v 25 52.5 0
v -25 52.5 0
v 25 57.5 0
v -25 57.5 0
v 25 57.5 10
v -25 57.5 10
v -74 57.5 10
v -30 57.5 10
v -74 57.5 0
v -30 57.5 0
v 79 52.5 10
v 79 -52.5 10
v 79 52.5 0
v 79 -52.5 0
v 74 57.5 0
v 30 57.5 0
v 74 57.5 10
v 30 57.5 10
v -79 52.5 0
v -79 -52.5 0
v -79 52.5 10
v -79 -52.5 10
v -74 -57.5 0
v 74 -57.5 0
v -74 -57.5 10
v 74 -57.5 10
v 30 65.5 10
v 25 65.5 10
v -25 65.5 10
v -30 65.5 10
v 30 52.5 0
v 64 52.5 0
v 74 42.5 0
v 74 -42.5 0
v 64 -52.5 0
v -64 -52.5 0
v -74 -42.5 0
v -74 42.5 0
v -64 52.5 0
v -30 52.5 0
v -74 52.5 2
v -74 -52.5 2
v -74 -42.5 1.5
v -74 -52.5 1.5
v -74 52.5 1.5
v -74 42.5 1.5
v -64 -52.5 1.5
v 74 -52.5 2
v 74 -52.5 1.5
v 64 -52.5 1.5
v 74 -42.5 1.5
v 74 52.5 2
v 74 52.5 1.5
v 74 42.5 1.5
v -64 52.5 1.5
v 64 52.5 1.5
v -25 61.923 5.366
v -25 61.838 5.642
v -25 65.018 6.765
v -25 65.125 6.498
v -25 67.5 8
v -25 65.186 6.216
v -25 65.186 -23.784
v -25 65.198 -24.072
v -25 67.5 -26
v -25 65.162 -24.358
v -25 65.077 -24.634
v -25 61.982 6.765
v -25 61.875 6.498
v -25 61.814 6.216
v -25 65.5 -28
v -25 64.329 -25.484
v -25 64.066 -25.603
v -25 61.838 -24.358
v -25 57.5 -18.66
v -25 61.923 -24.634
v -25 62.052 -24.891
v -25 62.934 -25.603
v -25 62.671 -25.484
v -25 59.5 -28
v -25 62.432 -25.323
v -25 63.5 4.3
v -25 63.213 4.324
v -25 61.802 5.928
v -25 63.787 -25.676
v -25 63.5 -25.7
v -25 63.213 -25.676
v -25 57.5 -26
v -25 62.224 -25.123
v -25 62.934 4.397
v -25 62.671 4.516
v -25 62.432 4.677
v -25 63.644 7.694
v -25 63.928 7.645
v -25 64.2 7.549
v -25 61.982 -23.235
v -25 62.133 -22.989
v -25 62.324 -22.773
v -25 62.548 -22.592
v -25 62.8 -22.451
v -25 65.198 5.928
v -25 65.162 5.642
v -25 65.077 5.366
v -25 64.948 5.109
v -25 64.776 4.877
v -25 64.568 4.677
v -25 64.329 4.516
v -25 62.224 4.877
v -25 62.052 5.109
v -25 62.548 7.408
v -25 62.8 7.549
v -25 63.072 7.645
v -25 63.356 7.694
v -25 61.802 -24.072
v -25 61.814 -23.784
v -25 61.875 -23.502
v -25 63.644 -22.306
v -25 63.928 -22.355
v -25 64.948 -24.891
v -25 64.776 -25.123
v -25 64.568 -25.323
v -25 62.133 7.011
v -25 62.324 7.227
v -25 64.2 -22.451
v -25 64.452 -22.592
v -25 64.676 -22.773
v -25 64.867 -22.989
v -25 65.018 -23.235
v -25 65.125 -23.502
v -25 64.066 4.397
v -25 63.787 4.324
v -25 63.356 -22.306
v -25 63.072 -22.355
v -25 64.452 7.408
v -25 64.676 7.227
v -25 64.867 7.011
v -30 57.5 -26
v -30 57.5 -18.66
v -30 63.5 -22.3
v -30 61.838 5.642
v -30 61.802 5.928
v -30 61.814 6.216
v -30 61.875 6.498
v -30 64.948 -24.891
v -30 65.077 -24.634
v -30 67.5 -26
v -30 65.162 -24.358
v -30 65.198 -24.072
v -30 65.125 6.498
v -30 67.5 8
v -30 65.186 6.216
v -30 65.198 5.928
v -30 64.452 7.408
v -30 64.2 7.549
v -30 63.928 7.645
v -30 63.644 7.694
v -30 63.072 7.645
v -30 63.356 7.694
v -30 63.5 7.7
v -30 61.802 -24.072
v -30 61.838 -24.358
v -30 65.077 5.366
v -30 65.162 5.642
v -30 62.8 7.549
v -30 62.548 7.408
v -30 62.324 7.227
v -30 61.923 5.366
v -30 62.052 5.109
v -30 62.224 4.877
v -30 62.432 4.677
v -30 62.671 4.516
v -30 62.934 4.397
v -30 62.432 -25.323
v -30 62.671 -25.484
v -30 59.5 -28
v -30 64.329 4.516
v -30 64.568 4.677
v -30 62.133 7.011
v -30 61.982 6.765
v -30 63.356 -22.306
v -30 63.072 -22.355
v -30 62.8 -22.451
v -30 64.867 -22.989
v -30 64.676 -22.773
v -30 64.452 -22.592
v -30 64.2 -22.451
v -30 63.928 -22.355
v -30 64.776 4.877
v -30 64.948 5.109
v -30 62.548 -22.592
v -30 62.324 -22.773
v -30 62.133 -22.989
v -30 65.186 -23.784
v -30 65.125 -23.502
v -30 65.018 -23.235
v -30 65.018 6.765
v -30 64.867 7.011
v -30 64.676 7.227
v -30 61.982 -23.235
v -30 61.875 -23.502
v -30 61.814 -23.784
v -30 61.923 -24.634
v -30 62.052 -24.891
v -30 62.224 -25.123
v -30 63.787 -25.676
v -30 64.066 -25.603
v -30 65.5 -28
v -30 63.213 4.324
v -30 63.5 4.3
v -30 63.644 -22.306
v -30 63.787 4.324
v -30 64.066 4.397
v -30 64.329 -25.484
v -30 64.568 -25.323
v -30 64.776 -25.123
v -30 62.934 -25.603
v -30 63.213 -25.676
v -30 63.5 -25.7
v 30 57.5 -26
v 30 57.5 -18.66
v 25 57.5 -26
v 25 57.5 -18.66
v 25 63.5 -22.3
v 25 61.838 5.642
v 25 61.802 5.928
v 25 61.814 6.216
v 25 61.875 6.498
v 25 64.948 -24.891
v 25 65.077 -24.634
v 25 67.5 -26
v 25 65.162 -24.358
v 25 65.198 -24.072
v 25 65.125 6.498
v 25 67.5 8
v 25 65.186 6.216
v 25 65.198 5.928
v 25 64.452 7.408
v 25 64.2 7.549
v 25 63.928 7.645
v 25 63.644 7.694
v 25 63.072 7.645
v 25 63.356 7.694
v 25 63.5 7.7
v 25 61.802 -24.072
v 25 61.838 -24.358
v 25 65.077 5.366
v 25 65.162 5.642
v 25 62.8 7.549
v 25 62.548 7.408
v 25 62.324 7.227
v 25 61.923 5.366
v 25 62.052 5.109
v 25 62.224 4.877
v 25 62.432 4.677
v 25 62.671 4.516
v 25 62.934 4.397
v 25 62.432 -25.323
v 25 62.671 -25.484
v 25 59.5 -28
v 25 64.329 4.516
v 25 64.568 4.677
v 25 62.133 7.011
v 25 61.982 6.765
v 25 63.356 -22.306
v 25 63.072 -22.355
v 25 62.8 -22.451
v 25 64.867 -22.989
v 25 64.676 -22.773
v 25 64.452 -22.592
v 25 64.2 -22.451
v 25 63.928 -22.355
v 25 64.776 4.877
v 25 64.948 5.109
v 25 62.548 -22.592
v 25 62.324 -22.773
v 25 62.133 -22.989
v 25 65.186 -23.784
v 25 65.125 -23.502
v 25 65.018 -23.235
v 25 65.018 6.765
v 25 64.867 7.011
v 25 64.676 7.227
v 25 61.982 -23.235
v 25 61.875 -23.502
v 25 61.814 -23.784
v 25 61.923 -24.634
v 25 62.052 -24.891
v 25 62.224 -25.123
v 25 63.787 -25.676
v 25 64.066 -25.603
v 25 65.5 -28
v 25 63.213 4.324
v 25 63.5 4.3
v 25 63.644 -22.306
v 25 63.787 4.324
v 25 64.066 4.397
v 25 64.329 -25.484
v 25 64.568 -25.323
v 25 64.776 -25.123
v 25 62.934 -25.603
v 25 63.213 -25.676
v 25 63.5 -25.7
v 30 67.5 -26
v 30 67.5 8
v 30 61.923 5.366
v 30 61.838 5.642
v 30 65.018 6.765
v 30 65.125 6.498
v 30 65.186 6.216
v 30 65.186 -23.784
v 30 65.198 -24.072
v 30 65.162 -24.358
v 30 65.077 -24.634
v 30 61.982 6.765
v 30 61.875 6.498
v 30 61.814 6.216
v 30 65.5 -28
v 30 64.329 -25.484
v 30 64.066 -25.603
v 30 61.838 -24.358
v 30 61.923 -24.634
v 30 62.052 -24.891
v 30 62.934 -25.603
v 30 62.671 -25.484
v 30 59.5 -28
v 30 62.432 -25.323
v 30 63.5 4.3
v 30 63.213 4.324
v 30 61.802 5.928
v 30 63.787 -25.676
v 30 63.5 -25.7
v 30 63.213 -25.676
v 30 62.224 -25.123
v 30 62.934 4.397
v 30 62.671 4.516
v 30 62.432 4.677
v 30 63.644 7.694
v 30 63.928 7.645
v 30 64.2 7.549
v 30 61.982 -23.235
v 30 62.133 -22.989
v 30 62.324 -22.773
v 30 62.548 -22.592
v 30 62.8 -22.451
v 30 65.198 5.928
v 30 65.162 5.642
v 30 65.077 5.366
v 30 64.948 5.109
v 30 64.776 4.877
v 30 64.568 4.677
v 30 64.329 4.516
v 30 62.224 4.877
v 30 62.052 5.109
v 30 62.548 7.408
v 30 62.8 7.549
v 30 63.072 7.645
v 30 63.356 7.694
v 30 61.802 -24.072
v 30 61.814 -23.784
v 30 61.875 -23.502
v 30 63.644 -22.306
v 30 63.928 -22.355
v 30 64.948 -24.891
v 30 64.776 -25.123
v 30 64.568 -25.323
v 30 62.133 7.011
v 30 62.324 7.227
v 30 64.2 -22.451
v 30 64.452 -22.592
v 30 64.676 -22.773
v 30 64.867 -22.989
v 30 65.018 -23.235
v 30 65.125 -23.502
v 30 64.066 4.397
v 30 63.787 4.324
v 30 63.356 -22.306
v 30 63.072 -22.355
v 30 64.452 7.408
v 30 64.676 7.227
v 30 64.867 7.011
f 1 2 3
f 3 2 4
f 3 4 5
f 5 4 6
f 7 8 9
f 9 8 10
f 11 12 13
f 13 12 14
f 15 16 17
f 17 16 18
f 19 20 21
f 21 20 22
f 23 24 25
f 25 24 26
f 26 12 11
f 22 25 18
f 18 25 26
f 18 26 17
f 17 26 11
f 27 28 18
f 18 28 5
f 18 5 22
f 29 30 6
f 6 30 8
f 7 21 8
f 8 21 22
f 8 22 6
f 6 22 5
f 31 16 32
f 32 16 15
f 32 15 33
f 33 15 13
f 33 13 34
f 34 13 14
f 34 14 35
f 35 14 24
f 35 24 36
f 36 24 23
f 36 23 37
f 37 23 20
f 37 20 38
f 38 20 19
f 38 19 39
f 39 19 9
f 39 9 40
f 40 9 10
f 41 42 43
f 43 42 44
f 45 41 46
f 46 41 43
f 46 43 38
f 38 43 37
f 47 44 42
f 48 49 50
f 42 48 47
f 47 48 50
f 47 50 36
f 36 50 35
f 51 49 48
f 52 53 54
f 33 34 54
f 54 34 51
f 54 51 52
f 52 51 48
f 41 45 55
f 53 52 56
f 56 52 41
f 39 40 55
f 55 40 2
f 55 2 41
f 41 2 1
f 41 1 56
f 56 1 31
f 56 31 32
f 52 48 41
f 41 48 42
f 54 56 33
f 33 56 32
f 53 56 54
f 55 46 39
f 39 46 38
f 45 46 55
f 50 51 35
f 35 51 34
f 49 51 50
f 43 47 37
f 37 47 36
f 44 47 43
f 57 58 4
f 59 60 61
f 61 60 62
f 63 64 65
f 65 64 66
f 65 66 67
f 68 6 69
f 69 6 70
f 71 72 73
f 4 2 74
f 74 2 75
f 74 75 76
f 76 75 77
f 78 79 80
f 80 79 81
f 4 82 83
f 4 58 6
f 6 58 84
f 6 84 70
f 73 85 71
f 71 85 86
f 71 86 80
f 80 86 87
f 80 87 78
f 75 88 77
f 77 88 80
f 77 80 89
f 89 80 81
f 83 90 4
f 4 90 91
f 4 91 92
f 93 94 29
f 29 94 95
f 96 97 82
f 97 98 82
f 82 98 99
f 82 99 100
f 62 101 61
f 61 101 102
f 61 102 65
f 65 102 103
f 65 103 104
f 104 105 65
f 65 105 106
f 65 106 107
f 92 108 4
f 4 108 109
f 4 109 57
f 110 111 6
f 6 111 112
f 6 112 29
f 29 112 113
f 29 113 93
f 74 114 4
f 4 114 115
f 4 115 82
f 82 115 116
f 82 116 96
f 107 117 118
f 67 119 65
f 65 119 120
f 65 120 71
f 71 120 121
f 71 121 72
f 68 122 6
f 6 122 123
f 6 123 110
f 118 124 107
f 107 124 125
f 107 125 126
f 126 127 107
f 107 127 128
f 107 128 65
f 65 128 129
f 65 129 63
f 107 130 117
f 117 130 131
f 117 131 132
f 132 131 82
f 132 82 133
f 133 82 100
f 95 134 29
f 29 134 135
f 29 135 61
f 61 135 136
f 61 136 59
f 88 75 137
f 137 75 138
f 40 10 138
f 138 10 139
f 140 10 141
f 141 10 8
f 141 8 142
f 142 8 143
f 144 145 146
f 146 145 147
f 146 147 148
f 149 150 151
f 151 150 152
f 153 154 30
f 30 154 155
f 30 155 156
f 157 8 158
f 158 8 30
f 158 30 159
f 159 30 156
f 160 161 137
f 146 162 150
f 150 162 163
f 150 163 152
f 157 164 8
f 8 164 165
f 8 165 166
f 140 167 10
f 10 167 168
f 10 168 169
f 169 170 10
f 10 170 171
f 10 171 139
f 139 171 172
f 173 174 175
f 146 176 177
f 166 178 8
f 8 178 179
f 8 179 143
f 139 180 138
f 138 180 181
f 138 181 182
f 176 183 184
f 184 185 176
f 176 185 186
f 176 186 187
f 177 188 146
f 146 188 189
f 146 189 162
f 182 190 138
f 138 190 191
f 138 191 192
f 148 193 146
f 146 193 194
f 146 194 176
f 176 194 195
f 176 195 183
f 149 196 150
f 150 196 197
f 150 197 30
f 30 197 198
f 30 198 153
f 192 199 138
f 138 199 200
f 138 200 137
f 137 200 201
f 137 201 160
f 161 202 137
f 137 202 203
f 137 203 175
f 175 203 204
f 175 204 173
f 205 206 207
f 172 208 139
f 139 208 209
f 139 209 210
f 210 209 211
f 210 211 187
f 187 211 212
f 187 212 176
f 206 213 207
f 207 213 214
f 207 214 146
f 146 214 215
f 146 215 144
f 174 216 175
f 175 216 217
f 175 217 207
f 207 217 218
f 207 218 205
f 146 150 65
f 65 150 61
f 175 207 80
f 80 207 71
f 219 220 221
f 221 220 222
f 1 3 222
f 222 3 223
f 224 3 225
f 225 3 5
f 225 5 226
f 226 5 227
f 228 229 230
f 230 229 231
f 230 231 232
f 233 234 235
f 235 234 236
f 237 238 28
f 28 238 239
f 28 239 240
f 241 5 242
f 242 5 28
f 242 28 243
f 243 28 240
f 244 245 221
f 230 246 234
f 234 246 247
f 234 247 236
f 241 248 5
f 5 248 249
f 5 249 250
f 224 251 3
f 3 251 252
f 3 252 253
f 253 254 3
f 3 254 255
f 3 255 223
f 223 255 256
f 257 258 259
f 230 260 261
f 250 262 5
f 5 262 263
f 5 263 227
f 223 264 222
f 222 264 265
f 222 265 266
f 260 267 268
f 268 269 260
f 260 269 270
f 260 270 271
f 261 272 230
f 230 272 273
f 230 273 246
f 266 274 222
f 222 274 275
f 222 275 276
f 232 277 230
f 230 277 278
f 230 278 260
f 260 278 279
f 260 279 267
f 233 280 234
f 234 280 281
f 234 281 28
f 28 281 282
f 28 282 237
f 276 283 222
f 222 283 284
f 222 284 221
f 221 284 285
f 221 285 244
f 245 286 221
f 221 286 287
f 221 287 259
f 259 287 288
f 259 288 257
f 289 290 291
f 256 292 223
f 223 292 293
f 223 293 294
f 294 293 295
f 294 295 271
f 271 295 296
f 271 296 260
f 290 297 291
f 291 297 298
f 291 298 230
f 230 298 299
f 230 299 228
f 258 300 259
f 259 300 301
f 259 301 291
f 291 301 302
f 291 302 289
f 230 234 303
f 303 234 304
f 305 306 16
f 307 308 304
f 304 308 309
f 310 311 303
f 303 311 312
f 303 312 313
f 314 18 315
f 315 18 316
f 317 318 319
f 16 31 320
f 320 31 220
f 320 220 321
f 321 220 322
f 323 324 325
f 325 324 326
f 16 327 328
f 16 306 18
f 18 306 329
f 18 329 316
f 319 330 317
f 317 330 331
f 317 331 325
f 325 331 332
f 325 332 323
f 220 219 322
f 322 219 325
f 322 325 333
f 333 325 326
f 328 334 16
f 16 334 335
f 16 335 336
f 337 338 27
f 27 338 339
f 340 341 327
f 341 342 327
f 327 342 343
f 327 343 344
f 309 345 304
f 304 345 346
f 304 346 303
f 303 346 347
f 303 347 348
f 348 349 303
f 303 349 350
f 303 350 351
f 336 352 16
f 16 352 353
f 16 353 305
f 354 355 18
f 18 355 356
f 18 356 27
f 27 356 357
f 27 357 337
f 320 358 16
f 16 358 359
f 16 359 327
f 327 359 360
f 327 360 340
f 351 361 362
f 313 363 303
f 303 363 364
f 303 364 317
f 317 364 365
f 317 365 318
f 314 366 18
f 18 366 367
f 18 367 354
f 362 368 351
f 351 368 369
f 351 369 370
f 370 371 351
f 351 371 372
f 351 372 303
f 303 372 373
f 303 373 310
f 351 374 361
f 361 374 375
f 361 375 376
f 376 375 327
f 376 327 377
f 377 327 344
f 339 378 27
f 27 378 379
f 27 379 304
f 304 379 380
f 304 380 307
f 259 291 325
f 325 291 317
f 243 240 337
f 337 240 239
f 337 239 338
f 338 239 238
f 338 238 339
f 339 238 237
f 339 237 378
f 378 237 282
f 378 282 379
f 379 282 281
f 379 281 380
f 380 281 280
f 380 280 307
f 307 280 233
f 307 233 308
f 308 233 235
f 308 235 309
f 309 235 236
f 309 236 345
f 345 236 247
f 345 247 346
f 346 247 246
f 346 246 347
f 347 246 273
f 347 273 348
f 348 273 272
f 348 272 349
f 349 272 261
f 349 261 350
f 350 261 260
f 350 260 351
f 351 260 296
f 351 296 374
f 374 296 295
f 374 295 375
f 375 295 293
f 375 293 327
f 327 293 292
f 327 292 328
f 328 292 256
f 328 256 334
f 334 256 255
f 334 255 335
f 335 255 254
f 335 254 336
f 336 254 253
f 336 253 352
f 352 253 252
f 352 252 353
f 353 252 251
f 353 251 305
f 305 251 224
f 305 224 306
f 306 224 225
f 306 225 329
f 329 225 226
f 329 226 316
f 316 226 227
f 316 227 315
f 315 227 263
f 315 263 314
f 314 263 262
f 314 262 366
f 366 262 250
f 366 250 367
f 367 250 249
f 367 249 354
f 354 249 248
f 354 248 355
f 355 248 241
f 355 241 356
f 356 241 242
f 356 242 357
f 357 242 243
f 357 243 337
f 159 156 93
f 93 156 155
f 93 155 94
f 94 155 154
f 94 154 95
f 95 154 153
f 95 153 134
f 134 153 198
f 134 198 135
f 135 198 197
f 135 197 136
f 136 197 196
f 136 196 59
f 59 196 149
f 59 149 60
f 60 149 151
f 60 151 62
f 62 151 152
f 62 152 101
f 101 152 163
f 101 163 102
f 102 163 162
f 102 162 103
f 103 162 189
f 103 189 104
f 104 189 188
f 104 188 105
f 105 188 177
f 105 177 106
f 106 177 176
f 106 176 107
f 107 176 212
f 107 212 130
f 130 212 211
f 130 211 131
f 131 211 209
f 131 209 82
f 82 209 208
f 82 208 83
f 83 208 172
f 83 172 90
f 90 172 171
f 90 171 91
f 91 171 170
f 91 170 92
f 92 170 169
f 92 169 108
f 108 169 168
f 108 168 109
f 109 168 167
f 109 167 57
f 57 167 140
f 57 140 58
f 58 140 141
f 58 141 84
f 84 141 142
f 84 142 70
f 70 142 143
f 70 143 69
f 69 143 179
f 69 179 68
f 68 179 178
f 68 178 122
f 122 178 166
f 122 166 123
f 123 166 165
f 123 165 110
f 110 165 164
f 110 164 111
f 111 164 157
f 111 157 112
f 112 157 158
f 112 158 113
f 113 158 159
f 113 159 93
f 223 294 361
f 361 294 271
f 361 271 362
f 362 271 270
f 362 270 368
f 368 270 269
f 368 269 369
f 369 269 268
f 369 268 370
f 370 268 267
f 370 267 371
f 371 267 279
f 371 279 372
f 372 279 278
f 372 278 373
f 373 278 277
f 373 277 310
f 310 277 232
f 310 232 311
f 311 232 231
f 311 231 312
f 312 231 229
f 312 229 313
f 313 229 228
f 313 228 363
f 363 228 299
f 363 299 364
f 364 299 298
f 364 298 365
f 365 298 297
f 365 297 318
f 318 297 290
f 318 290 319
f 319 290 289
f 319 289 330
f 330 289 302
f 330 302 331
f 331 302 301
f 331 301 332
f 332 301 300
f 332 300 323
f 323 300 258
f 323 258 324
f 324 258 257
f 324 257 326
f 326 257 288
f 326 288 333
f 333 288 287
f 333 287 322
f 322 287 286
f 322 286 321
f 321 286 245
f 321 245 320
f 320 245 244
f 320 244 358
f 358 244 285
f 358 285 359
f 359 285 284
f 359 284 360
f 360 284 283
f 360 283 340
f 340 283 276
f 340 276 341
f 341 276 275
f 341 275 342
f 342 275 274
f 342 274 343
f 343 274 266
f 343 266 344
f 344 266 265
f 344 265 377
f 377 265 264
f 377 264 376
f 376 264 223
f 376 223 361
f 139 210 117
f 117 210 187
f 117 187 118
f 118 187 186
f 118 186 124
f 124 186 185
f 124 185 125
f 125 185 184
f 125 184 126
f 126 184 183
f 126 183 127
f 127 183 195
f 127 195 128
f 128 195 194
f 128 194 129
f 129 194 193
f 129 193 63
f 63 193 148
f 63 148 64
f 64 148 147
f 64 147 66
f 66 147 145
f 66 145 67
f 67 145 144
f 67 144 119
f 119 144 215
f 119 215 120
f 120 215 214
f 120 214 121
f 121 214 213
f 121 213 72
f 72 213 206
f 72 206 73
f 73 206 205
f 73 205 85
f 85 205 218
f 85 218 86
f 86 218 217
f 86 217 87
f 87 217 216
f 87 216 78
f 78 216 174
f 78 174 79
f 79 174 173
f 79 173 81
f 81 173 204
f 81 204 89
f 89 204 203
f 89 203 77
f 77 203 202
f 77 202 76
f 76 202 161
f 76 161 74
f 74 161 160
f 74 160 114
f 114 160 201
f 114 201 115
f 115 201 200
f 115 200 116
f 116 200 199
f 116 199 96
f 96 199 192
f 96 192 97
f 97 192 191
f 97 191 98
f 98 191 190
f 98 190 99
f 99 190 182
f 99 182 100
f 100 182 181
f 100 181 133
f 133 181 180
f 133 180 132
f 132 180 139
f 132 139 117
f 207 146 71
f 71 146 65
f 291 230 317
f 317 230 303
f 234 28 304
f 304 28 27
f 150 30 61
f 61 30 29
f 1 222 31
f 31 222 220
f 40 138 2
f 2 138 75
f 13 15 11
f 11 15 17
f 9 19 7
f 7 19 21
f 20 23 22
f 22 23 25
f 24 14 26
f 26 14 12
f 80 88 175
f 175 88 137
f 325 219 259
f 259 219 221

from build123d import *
from OCP.BRepFilletAPI import BRepFilletAPI_MakeChamfer

# Parameters (mm, degrees)
SKETCH1_W            = 158
SKETCH1_H            = 115
BOSS_EXTRUDE1_DEPTH  = 10
SKETCH2_W            = 148
SKETCH2_H            = 105
CUT_EXTRUDE1_DEPTH   = 2
BOSS_EXTRUDE2_DEPTH  = 1.5
SKETCH4_W            = 5
SKETCH4_H            = 10
BOSS_EXTRUDE3_DEPTH  = 38
M3_CLEARANCE_HOLE1_D = 3.4
CHAMFER3_SIZE        = 2
CHAMFER4_SIZE        = 5
CHAMFER4_SIZE_2      = 18.660254038
CHAMFER5_SIZE        = 5
CHAMFER6_SIZE        = 2


with BuildPart() as part:
    # Sketch1 → Boss-Extrude1 (new body)
    with BuildSketch(Plane.XY):
        Rectangle(SKETCH1_W, SKETCH1_H)
    extrude(amount=BOSS_EXTRUDE1_DEPTH)

    # Sketch2 → Cut-Extrude1 (cut)
    with BuildSketch(Plane(origin=(0, 0, 0), x_dir=(-1, 0, 0), z_dir=(0, 0, -1))):
        Rectangle(SKETCH2_W, SKETCH2_H)
    extrude(amount=-CUT_EXTRUDE1_DEPTH, mode=Mode.SUBTRACT)

    # Sketch3 → Boss-Extrude2 (add)
    with BuildSketch(Plane(origin=(0, 0, 0), x_dir=(-1, 0, 0), z_dir=(0, 0, -1))):
        Polygon((-74, 42.5), (-64, 52.5), (-74, 52.5), align=None)
        Polygon((74, 52.5), (74, 42.5), (64, 52.5), align=None)
        Polygon((-74, -52.5), (-74, -42.5), (-64, -52.5), align=None)
        Polygon((74, -42.5), (64, -52.5), (74, -52.5), align=None)
    extrude(amount=-BOSS_EXTRUDE2_DEPTH)

    # Sketch4 → Boss-Extrude3 (add)
    with BuildSketch(Plane.XY.offset(10)):
        with Locations((27.5, 62.5)):
            Rectangle(SKETCH4_W, SKETCH4_H)
        with Locations((-27.5, 62.5)):
            Rectangle(SKETCH4_W, SKETCH4_H)
    extrude(amount=-BOSS_EXTRUDE3_DEPTH)

    # M3 Clearance Hole1 (through all)
    with Locations(Plane(origin=(30, 0, 0), x_dir=(0, 0, -1), z_dir=(1, 0, 0))):
        with Locations((24, 63.5), (-6, 63.5)):
            Hole(M3_CLEARANCE_HOLE1_D / 2)

    # Chamfer3
    chamfer3_edges = [part.edges().sort_by_distance(p)[0] for p in [
        (-27.5, 67.5, -28),
        (27.5, 67.5, -28),
        (27.5, 67.5, 10),
        (-27.5, 67.5, 10),
    ]]
    chamfer(chamfer3_edges, length=CHAMFER3_SIZE)

    # Chamfer4
    chamfer4_edges_1 = [part.edges().sort_by_distance(p)[0] for p in [
        (-27.5, 57.5, 0),
    ]]
    chamfer4_side_1 = [part.faces().sort_by_distance(p)[0] for p in [
        (-27.5, 57.4, 0),
    ]]
    chamfer4_edges_2 = [part.edges().sort_by_distance(p)[0] for p in [
        (27.5, 57.5, 0),
    ]]
    chamfer4_side_2 = [part.faces().sort_by_distance(p)[0] for p in [
        (27.5, 57.5, -0.1),
    ]]
    chamfer4 = BRepFilletAPI_MakeChamfer(part.part.solid().wrapped)
    for e in chamfer4_edges_1:
        chamfer4.Add(CHAMFER4_SIZE - 0.0001, CHAMFER4_SIZE_2 - 0.0001, e.wrapped, chamfer4_side_1[0].wrapped)
    for e in chamfer4_edges_2:
        chamfer4.Add(CHAMFER4_SIZE_2 - 0.0001, CHAMFER4_SIZE - 0.0001, e.wrapped, chamfer4_side_2[0].wrapped)
    add(Compound.cast(chamfer4.Shape()), mode=Mode.REPLACE)  # a hair under: the kernel refuses the full size

    # Chamfer5
    chamfer5_edges = [part.edges().sort_by_distance(p)[0] for p in [
        (79, 57.5, 5),
        (-79, 57.5, 5),
        (-79, -57.5, 5),
        (79, -57.5, 5),
    ]]
    chamfer(chamfer5_edges, length=CHAMFER5_SIZE)

    # Chamfer6
    chamfer6_edges = [part.edges().sort_by_distance(p)[0] for p in [
        (-27.5, 57.5, -28),
        (27.5, 57.5, -28),
    ]]
    chamfer(chamfer6_edges, length=CHAMFER6_SIZE)


solid = part.part
